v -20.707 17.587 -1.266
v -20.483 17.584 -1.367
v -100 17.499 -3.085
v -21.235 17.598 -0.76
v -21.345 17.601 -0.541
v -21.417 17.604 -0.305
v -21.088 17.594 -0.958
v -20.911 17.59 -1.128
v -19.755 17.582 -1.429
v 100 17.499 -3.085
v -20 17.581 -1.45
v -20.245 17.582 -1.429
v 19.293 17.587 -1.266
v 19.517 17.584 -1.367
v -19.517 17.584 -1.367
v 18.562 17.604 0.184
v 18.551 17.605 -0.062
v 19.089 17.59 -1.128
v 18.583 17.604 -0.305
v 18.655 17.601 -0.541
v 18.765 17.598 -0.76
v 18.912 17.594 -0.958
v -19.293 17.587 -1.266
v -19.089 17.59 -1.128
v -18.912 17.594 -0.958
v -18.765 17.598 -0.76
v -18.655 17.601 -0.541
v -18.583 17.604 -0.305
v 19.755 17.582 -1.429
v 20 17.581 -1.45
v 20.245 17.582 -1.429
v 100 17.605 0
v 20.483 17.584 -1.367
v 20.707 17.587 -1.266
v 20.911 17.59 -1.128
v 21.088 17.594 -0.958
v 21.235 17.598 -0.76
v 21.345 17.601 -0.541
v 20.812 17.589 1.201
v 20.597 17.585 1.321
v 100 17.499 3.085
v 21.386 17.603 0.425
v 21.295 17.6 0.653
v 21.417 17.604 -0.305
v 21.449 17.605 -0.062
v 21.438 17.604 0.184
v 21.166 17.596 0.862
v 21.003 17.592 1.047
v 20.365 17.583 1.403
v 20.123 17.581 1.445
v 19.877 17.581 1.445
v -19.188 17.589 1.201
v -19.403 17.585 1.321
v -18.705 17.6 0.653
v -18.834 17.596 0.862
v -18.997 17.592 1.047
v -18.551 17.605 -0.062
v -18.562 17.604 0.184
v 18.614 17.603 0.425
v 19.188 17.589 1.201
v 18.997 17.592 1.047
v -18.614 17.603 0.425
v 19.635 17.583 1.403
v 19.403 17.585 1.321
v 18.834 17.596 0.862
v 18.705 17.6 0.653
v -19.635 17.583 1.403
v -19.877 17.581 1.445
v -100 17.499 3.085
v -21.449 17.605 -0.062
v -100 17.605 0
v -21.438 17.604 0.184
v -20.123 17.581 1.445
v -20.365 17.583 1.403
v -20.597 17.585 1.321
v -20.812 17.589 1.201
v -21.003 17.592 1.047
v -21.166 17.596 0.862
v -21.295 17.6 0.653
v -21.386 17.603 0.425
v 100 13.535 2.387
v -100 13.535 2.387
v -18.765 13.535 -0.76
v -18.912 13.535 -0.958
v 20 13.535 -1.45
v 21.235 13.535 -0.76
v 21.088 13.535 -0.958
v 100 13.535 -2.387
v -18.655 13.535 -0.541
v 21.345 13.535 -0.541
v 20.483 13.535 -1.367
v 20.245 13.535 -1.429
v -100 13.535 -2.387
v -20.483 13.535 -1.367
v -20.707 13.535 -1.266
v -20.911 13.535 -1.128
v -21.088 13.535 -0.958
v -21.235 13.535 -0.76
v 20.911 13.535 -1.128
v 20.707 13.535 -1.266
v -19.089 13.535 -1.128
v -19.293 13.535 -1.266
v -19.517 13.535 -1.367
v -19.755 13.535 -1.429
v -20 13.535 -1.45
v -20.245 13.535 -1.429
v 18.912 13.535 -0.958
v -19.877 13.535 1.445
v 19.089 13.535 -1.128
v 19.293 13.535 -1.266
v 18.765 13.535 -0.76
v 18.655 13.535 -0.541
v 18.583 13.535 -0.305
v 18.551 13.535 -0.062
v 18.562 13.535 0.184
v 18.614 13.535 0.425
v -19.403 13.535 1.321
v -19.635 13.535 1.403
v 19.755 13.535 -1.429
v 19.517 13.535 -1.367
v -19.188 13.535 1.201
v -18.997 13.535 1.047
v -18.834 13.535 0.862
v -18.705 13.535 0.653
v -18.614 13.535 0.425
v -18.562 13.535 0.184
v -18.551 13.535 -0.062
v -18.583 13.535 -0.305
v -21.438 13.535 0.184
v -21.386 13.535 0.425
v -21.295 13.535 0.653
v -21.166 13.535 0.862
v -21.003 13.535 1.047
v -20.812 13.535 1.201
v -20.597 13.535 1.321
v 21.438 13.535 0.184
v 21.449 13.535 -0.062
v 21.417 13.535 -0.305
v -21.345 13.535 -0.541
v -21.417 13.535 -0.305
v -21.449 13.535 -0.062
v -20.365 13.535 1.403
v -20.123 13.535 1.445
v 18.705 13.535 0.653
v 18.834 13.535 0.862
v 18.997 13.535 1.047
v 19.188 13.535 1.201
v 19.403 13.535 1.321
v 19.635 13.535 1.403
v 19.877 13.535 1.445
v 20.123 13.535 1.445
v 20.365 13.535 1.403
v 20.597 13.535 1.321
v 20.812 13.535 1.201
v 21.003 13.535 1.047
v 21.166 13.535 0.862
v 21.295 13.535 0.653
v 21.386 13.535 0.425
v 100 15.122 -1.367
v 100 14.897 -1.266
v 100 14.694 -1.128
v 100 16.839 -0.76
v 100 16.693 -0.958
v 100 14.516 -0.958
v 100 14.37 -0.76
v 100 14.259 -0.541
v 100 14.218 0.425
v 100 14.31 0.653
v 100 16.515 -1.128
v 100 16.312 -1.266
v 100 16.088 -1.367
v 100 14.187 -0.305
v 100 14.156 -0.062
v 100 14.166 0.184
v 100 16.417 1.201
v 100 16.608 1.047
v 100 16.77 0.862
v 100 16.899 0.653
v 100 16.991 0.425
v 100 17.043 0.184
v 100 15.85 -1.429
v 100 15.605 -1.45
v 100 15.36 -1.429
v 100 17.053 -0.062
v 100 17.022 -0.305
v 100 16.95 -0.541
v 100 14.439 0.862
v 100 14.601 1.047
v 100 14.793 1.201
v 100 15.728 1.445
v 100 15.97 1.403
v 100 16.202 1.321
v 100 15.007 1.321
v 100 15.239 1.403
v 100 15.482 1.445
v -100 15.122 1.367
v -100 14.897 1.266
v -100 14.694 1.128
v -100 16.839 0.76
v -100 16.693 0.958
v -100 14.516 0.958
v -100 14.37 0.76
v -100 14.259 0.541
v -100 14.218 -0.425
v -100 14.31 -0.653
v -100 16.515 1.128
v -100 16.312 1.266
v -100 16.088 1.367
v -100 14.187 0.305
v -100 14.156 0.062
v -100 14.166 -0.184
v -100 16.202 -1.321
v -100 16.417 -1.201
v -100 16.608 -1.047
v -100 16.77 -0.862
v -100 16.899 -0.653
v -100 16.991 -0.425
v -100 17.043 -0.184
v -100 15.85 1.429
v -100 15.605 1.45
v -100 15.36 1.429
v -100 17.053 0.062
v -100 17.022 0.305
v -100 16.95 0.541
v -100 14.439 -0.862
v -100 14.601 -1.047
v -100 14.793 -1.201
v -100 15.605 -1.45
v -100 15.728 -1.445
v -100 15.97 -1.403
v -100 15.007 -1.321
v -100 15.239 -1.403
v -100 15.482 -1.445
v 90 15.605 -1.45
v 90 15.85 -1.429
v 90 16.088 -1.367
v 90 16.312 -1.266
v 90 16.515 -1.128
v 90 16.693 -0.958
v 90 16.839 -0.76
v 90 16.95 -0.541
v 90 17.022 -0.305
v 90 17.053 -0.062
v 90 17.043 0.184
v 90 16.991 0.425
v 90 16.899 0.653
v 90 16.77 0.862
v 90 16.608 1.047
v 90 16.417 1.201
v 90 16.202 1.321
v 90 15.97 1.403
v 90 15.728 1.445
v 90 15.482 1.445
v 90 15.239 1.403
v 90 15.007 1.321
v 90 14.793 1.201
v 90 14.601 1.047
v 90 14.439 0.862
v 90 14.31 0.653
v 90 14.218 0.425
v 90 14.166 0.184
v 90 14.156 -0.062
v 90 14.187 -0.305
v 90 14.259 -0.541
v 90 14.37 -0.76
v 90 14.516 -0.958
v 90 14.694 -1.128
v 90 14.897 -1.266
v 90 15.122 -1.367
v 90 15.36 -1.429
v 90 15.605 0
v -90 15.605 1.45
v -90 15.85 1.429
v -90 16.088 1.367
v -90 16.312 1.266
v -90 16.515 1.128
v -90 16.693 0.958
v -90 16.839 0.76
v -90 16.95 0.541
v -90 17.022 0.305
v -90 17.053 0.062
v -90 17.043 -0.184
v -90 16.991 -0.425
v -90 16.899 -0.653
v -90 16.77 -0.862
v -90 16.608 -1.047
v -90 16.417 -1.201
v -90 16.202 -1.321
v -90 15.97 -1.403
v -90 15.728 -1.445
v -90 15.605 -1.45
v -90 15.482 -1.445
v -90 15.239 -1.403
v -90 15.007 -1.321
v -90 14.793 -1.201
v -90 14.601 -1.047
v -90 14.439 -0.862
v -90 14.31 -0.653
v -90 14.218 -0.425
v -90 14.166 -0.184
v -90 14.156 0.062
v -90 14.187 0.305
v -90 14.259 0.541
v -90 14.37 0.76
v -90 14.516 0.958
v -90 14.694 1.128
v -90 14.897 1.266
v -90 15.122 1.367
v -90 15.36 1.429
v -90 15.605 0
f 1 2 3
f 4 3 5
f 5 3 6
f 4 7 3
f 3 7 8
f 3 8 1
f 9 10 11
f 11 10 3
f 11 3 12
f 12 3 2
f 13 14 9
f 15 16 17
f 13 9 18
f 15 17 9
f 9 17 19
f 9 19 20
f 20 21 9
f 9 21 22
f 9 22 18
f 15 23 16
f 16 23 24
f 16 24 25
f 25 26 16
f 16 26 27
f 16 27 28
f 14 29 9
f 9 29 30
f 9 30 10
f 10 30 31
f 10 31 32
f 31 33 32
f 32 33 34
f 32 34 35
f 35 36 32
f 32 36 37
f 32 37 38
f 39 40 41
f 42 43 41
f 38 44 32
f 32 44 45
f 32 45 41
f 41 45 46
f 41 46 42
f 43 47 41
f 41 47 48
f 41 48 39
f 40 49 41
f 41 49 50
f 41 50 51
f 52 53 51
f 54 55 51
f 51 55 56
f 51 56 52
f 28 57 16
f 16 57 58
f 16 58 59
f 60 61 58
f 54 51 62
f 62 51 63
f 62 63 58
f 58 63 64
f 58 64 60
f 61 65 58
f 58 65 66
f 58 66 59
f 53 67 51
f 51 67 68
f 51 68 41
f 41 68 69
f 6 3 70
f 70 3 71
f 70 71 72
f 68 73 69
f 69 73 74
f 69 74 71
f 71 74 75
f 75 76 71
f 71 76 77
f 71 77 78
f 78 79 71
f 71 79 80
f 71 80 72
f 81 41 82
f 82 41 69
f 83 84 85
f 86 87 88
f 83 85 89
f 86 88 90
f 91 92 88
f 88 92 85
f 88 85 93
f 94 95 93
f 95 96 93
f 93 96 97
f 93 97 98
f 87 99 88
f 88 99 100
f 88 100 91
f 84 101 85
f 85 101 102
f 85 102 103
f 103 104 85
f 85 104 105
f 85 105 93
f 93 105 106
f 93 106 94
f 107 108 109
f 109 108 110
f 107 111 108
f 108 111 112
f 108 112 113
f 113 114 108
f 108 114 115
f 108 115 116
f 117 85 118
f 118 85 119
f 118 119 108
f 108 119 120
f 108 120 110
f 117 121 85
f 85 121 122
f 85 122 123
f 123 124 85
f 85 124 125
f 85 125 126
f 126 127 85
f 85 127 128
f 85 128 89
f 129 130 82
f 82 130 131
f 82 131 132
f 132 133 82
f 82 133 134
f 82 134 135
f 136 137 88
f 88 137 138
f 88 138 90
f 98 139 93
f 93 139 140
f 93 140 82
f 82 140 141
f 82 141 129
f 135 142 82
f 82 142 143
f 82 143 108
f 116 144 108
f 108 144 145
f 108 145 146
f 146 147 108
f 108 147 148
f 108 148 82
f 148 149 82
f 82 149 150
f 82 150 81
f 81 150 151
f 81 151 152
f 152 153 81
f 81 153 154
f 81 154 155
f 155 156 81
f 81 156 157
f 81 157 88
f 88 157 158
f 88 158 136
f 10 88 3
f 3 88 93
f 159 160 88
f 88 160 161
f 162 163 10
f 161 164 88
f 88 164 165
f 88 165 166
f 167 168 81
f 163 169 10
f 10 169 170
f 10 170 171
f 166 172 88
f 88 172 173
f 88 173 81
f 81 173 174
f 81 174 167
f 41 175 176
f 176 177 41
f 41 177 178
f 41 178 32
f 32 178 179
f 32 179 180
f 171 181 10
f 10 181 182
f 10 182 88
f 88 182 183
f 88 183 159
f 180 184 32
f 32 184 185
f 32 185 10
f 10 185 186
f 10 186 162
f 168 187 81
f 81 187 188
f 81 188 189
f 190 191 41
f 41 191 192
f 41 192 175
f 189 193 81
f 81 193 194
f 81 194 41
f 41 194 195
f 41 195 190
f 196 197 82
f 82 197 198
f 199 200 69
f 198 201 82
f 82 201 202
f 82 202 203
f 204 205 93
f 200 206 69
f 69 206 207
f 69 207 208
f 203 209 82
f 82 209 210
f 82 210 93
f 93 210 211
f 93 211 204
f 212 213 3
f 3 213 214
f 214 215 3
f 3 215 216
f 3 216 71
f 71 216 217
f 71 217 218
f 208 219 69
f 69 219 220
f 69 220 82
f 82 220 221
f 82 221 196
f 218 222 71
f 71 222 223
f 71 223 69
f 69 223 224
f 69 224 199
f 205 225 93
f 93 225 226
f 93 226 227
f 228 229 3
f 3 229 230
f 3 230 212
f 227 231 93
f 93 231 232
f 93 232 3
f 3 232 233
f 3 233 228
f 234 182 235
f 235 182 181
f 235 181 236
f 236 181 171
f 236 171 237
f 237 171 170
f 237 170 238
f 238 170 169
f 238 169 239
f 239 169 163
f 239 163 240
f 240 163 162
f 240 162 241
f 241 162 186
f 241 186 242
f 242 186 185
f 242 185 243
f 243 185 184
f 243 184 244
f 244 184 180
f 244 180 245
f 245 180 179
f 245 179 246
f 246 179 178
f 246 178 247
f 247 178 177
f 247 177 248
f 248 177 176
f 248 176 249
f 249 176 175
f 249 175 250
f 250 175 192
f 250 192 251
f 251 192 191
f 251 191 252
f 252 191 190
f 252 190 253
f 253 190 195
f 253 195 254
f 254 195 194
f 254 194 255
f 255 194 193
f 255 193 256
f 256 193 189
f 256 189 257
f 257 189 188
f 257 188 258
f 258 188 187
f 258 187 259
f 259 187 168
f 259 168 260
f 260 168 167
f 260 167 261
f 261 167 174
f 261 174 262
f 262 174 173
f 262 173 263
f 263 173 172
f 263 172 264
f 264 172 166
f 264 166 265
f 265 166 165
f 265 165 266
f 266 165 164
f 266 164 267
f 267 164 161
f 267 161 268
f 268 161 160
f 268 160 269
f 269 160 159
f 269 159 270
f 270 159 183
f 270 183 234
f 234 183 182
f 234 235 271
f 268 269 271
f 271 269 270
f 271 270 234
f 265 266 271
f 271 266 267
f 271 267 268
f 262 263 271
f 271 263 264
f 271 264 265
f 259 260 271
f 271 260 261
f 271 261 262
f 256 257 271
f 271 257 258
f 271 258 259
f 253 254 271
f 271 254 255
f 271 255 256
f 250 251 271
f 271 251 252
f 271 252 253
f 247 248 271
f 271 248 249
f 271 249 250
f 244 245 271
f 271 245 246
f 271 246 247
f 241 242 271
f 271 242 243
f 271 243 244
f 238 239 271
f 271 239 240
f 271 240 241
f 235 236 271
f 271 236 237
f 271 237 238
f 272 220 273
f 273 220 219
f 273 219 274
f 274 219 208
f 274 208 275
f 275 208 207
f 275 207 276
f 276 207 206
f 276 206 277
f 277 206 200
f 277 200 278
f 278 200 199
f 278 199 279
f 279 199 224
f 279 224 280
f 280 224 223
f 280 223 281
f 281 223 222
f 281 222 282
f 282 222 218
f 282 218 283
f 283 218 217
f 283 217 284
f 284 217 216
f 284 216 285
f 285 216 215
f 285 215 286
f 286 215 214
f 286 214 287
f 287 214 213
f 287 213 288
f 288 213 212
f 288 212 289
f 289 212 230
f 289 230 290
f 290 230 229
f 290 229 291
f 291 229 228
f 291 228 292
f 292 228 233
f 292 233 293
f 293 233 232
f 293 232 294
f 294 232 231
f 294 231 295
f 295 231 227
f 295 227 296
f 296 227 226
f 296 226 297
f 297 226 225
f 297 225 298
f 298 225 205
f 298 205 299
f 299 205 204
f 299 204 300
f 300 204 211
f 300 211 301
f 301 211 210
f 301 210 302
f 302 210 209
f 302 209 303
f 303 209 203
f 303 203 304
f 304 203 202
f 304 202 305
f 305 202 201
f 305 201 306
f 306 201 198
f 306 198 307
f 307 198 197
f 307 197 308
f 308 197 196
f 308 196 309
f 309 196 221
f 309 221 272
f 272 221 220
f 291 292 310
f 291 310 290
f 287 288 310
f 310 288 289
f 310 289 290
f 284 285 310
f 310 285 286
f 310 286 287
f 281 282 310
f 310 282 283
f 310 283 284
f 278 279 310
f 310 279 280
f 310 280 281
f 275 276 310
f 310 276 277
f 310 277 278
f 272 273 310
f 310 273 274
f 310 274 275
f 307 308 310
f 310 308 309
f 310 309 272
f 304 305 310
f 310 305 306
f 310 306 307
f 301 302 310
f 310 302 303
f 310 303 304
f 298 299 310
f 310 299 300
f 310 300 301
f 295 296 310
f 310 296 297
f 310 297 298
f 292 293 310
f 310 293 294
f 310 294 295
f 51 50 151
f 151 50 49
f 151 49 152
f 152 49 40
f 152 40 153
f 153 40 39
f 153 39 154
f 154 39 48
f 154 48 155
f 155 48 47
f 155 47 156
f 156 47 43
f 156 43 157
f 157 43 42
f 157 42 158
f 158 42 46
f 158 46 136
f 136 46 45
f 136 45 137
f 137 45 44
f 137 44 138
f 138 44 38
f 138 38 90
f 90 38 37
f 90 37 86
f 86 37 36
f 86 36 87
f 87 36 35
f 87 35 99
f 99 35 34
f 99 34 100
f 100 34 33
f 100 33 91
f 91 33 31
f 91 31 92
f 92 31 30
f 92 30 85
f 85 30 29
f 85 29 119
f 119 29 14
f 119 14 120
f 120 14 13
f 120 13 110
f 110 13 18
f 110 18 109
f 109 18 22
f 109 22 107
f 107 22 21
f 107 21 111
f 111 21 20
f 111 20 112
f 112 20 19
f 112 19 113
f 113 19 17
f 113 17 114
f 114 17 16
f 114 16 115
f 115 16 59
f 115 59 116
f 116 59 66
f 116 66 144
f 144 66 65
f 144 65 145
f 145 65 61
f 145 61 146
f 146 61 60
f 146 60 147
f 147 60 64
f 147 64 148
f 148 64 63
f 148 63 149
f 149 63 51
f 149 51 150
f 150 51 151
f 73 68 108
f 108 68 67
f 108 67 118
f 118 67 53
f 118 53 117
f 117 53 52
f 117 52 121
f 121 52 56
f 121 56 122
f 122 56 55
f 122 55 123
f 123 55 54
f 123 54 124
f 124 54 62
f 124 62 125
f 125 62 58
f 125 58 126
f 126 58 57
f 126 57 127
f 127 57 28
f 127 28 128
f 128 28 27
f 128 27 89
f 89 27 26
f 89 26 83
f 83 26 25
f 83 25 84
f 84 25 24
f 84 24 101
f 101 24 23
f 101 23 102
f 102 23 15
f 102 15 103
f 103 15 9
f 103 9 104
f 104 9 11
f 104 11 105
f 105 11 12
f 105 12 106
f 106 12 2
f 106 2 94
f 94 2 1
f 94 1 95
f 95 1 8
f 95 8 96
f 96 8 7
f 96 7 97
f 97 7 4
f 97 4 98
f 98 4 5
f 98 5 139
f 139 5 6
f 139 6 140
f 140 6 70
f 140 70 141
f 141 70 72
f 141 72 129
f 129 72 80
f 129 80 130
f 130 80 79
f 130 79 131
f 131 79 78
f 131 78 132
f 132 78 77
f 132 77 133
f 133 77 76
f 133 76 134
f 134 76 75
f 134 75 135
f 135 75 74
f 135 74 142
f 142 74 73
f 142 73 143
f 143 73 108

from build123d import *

# Parameters (mm, degrees)
EXTRUDE_1_DEPTH     = 100
SKETCH_2_R          = 1.45
CUT_EXTRUDE_1_DEPTH = 10
SKETCH_3_R          = 1.45
CUT_EXTRUDE_2_DEPTH = 10


with BuildPart() as part:
    # Эскиз1 → Бобышка-Вытянуть1 (new, symmetric)
    with BuildSketch(Plane(origin=(0, 0, 0), x_dir=(0, 0, -1), z_dir=(1, 0, 0))):
        with BuildLine():
            Line((-3.085485457, 17.498657575), (-2.386593122, 13.535042182))
            Line((-2.386593122, 13.535042182), (2.386593122, 13.535042182))
            Line((2.386593122, 13.535042182), (3.085485457, 17.498657575))
            ThreePointArc((3.085485457, 17.498657575), (0, 17.604562424), (-3.085485457, 17.498657575))
        make_face()
    extrude(amount=EXTRUDE_1_DEPTH, both=True)

    # Эскиз2 → Вырез-Вытянуть1 (cut)
    with BuildSketch(Plane(origin=(100, 0, 0), x_dir=(0, 0, -1), z_dir=(1, 0, 0))):
        with Locations((0, 15.604562424)):
            Circle(SKETCH_2_R)
    cut_extrude_1 = extrude(amount=-CUT_EXTRUDE_1_DEPTH, mode=Mode.SUBTRACT)

    # Зеркальное отражение1: Вырез-Вытянуть1 across plane
    add(cut_extrude_1.mirror(Plane(origin=(0, 0, 0), x_dir=(0, 0, 1), z_dir=(1, 0, 0))), mode=Mode.SUBTRACT)

    # Эскиз3 → Вырез-Вытянуть2 (cut)
    with BuildSketch(Plane.XZ.offset(-13.535042182)):
        with Locations(Location((-20, 0, 0), (0, 0, 270))):
            Circle(SKETCH_3_R)
        with Locations(Location((20, 0, 0), (0, 0, 270))):
            Circle(SKETCH_3_R)
    extrude(amount=-CUT_EXTRUDE_2_DEPTH, mode=Mode.SUBTRACT)


solid = part.part
